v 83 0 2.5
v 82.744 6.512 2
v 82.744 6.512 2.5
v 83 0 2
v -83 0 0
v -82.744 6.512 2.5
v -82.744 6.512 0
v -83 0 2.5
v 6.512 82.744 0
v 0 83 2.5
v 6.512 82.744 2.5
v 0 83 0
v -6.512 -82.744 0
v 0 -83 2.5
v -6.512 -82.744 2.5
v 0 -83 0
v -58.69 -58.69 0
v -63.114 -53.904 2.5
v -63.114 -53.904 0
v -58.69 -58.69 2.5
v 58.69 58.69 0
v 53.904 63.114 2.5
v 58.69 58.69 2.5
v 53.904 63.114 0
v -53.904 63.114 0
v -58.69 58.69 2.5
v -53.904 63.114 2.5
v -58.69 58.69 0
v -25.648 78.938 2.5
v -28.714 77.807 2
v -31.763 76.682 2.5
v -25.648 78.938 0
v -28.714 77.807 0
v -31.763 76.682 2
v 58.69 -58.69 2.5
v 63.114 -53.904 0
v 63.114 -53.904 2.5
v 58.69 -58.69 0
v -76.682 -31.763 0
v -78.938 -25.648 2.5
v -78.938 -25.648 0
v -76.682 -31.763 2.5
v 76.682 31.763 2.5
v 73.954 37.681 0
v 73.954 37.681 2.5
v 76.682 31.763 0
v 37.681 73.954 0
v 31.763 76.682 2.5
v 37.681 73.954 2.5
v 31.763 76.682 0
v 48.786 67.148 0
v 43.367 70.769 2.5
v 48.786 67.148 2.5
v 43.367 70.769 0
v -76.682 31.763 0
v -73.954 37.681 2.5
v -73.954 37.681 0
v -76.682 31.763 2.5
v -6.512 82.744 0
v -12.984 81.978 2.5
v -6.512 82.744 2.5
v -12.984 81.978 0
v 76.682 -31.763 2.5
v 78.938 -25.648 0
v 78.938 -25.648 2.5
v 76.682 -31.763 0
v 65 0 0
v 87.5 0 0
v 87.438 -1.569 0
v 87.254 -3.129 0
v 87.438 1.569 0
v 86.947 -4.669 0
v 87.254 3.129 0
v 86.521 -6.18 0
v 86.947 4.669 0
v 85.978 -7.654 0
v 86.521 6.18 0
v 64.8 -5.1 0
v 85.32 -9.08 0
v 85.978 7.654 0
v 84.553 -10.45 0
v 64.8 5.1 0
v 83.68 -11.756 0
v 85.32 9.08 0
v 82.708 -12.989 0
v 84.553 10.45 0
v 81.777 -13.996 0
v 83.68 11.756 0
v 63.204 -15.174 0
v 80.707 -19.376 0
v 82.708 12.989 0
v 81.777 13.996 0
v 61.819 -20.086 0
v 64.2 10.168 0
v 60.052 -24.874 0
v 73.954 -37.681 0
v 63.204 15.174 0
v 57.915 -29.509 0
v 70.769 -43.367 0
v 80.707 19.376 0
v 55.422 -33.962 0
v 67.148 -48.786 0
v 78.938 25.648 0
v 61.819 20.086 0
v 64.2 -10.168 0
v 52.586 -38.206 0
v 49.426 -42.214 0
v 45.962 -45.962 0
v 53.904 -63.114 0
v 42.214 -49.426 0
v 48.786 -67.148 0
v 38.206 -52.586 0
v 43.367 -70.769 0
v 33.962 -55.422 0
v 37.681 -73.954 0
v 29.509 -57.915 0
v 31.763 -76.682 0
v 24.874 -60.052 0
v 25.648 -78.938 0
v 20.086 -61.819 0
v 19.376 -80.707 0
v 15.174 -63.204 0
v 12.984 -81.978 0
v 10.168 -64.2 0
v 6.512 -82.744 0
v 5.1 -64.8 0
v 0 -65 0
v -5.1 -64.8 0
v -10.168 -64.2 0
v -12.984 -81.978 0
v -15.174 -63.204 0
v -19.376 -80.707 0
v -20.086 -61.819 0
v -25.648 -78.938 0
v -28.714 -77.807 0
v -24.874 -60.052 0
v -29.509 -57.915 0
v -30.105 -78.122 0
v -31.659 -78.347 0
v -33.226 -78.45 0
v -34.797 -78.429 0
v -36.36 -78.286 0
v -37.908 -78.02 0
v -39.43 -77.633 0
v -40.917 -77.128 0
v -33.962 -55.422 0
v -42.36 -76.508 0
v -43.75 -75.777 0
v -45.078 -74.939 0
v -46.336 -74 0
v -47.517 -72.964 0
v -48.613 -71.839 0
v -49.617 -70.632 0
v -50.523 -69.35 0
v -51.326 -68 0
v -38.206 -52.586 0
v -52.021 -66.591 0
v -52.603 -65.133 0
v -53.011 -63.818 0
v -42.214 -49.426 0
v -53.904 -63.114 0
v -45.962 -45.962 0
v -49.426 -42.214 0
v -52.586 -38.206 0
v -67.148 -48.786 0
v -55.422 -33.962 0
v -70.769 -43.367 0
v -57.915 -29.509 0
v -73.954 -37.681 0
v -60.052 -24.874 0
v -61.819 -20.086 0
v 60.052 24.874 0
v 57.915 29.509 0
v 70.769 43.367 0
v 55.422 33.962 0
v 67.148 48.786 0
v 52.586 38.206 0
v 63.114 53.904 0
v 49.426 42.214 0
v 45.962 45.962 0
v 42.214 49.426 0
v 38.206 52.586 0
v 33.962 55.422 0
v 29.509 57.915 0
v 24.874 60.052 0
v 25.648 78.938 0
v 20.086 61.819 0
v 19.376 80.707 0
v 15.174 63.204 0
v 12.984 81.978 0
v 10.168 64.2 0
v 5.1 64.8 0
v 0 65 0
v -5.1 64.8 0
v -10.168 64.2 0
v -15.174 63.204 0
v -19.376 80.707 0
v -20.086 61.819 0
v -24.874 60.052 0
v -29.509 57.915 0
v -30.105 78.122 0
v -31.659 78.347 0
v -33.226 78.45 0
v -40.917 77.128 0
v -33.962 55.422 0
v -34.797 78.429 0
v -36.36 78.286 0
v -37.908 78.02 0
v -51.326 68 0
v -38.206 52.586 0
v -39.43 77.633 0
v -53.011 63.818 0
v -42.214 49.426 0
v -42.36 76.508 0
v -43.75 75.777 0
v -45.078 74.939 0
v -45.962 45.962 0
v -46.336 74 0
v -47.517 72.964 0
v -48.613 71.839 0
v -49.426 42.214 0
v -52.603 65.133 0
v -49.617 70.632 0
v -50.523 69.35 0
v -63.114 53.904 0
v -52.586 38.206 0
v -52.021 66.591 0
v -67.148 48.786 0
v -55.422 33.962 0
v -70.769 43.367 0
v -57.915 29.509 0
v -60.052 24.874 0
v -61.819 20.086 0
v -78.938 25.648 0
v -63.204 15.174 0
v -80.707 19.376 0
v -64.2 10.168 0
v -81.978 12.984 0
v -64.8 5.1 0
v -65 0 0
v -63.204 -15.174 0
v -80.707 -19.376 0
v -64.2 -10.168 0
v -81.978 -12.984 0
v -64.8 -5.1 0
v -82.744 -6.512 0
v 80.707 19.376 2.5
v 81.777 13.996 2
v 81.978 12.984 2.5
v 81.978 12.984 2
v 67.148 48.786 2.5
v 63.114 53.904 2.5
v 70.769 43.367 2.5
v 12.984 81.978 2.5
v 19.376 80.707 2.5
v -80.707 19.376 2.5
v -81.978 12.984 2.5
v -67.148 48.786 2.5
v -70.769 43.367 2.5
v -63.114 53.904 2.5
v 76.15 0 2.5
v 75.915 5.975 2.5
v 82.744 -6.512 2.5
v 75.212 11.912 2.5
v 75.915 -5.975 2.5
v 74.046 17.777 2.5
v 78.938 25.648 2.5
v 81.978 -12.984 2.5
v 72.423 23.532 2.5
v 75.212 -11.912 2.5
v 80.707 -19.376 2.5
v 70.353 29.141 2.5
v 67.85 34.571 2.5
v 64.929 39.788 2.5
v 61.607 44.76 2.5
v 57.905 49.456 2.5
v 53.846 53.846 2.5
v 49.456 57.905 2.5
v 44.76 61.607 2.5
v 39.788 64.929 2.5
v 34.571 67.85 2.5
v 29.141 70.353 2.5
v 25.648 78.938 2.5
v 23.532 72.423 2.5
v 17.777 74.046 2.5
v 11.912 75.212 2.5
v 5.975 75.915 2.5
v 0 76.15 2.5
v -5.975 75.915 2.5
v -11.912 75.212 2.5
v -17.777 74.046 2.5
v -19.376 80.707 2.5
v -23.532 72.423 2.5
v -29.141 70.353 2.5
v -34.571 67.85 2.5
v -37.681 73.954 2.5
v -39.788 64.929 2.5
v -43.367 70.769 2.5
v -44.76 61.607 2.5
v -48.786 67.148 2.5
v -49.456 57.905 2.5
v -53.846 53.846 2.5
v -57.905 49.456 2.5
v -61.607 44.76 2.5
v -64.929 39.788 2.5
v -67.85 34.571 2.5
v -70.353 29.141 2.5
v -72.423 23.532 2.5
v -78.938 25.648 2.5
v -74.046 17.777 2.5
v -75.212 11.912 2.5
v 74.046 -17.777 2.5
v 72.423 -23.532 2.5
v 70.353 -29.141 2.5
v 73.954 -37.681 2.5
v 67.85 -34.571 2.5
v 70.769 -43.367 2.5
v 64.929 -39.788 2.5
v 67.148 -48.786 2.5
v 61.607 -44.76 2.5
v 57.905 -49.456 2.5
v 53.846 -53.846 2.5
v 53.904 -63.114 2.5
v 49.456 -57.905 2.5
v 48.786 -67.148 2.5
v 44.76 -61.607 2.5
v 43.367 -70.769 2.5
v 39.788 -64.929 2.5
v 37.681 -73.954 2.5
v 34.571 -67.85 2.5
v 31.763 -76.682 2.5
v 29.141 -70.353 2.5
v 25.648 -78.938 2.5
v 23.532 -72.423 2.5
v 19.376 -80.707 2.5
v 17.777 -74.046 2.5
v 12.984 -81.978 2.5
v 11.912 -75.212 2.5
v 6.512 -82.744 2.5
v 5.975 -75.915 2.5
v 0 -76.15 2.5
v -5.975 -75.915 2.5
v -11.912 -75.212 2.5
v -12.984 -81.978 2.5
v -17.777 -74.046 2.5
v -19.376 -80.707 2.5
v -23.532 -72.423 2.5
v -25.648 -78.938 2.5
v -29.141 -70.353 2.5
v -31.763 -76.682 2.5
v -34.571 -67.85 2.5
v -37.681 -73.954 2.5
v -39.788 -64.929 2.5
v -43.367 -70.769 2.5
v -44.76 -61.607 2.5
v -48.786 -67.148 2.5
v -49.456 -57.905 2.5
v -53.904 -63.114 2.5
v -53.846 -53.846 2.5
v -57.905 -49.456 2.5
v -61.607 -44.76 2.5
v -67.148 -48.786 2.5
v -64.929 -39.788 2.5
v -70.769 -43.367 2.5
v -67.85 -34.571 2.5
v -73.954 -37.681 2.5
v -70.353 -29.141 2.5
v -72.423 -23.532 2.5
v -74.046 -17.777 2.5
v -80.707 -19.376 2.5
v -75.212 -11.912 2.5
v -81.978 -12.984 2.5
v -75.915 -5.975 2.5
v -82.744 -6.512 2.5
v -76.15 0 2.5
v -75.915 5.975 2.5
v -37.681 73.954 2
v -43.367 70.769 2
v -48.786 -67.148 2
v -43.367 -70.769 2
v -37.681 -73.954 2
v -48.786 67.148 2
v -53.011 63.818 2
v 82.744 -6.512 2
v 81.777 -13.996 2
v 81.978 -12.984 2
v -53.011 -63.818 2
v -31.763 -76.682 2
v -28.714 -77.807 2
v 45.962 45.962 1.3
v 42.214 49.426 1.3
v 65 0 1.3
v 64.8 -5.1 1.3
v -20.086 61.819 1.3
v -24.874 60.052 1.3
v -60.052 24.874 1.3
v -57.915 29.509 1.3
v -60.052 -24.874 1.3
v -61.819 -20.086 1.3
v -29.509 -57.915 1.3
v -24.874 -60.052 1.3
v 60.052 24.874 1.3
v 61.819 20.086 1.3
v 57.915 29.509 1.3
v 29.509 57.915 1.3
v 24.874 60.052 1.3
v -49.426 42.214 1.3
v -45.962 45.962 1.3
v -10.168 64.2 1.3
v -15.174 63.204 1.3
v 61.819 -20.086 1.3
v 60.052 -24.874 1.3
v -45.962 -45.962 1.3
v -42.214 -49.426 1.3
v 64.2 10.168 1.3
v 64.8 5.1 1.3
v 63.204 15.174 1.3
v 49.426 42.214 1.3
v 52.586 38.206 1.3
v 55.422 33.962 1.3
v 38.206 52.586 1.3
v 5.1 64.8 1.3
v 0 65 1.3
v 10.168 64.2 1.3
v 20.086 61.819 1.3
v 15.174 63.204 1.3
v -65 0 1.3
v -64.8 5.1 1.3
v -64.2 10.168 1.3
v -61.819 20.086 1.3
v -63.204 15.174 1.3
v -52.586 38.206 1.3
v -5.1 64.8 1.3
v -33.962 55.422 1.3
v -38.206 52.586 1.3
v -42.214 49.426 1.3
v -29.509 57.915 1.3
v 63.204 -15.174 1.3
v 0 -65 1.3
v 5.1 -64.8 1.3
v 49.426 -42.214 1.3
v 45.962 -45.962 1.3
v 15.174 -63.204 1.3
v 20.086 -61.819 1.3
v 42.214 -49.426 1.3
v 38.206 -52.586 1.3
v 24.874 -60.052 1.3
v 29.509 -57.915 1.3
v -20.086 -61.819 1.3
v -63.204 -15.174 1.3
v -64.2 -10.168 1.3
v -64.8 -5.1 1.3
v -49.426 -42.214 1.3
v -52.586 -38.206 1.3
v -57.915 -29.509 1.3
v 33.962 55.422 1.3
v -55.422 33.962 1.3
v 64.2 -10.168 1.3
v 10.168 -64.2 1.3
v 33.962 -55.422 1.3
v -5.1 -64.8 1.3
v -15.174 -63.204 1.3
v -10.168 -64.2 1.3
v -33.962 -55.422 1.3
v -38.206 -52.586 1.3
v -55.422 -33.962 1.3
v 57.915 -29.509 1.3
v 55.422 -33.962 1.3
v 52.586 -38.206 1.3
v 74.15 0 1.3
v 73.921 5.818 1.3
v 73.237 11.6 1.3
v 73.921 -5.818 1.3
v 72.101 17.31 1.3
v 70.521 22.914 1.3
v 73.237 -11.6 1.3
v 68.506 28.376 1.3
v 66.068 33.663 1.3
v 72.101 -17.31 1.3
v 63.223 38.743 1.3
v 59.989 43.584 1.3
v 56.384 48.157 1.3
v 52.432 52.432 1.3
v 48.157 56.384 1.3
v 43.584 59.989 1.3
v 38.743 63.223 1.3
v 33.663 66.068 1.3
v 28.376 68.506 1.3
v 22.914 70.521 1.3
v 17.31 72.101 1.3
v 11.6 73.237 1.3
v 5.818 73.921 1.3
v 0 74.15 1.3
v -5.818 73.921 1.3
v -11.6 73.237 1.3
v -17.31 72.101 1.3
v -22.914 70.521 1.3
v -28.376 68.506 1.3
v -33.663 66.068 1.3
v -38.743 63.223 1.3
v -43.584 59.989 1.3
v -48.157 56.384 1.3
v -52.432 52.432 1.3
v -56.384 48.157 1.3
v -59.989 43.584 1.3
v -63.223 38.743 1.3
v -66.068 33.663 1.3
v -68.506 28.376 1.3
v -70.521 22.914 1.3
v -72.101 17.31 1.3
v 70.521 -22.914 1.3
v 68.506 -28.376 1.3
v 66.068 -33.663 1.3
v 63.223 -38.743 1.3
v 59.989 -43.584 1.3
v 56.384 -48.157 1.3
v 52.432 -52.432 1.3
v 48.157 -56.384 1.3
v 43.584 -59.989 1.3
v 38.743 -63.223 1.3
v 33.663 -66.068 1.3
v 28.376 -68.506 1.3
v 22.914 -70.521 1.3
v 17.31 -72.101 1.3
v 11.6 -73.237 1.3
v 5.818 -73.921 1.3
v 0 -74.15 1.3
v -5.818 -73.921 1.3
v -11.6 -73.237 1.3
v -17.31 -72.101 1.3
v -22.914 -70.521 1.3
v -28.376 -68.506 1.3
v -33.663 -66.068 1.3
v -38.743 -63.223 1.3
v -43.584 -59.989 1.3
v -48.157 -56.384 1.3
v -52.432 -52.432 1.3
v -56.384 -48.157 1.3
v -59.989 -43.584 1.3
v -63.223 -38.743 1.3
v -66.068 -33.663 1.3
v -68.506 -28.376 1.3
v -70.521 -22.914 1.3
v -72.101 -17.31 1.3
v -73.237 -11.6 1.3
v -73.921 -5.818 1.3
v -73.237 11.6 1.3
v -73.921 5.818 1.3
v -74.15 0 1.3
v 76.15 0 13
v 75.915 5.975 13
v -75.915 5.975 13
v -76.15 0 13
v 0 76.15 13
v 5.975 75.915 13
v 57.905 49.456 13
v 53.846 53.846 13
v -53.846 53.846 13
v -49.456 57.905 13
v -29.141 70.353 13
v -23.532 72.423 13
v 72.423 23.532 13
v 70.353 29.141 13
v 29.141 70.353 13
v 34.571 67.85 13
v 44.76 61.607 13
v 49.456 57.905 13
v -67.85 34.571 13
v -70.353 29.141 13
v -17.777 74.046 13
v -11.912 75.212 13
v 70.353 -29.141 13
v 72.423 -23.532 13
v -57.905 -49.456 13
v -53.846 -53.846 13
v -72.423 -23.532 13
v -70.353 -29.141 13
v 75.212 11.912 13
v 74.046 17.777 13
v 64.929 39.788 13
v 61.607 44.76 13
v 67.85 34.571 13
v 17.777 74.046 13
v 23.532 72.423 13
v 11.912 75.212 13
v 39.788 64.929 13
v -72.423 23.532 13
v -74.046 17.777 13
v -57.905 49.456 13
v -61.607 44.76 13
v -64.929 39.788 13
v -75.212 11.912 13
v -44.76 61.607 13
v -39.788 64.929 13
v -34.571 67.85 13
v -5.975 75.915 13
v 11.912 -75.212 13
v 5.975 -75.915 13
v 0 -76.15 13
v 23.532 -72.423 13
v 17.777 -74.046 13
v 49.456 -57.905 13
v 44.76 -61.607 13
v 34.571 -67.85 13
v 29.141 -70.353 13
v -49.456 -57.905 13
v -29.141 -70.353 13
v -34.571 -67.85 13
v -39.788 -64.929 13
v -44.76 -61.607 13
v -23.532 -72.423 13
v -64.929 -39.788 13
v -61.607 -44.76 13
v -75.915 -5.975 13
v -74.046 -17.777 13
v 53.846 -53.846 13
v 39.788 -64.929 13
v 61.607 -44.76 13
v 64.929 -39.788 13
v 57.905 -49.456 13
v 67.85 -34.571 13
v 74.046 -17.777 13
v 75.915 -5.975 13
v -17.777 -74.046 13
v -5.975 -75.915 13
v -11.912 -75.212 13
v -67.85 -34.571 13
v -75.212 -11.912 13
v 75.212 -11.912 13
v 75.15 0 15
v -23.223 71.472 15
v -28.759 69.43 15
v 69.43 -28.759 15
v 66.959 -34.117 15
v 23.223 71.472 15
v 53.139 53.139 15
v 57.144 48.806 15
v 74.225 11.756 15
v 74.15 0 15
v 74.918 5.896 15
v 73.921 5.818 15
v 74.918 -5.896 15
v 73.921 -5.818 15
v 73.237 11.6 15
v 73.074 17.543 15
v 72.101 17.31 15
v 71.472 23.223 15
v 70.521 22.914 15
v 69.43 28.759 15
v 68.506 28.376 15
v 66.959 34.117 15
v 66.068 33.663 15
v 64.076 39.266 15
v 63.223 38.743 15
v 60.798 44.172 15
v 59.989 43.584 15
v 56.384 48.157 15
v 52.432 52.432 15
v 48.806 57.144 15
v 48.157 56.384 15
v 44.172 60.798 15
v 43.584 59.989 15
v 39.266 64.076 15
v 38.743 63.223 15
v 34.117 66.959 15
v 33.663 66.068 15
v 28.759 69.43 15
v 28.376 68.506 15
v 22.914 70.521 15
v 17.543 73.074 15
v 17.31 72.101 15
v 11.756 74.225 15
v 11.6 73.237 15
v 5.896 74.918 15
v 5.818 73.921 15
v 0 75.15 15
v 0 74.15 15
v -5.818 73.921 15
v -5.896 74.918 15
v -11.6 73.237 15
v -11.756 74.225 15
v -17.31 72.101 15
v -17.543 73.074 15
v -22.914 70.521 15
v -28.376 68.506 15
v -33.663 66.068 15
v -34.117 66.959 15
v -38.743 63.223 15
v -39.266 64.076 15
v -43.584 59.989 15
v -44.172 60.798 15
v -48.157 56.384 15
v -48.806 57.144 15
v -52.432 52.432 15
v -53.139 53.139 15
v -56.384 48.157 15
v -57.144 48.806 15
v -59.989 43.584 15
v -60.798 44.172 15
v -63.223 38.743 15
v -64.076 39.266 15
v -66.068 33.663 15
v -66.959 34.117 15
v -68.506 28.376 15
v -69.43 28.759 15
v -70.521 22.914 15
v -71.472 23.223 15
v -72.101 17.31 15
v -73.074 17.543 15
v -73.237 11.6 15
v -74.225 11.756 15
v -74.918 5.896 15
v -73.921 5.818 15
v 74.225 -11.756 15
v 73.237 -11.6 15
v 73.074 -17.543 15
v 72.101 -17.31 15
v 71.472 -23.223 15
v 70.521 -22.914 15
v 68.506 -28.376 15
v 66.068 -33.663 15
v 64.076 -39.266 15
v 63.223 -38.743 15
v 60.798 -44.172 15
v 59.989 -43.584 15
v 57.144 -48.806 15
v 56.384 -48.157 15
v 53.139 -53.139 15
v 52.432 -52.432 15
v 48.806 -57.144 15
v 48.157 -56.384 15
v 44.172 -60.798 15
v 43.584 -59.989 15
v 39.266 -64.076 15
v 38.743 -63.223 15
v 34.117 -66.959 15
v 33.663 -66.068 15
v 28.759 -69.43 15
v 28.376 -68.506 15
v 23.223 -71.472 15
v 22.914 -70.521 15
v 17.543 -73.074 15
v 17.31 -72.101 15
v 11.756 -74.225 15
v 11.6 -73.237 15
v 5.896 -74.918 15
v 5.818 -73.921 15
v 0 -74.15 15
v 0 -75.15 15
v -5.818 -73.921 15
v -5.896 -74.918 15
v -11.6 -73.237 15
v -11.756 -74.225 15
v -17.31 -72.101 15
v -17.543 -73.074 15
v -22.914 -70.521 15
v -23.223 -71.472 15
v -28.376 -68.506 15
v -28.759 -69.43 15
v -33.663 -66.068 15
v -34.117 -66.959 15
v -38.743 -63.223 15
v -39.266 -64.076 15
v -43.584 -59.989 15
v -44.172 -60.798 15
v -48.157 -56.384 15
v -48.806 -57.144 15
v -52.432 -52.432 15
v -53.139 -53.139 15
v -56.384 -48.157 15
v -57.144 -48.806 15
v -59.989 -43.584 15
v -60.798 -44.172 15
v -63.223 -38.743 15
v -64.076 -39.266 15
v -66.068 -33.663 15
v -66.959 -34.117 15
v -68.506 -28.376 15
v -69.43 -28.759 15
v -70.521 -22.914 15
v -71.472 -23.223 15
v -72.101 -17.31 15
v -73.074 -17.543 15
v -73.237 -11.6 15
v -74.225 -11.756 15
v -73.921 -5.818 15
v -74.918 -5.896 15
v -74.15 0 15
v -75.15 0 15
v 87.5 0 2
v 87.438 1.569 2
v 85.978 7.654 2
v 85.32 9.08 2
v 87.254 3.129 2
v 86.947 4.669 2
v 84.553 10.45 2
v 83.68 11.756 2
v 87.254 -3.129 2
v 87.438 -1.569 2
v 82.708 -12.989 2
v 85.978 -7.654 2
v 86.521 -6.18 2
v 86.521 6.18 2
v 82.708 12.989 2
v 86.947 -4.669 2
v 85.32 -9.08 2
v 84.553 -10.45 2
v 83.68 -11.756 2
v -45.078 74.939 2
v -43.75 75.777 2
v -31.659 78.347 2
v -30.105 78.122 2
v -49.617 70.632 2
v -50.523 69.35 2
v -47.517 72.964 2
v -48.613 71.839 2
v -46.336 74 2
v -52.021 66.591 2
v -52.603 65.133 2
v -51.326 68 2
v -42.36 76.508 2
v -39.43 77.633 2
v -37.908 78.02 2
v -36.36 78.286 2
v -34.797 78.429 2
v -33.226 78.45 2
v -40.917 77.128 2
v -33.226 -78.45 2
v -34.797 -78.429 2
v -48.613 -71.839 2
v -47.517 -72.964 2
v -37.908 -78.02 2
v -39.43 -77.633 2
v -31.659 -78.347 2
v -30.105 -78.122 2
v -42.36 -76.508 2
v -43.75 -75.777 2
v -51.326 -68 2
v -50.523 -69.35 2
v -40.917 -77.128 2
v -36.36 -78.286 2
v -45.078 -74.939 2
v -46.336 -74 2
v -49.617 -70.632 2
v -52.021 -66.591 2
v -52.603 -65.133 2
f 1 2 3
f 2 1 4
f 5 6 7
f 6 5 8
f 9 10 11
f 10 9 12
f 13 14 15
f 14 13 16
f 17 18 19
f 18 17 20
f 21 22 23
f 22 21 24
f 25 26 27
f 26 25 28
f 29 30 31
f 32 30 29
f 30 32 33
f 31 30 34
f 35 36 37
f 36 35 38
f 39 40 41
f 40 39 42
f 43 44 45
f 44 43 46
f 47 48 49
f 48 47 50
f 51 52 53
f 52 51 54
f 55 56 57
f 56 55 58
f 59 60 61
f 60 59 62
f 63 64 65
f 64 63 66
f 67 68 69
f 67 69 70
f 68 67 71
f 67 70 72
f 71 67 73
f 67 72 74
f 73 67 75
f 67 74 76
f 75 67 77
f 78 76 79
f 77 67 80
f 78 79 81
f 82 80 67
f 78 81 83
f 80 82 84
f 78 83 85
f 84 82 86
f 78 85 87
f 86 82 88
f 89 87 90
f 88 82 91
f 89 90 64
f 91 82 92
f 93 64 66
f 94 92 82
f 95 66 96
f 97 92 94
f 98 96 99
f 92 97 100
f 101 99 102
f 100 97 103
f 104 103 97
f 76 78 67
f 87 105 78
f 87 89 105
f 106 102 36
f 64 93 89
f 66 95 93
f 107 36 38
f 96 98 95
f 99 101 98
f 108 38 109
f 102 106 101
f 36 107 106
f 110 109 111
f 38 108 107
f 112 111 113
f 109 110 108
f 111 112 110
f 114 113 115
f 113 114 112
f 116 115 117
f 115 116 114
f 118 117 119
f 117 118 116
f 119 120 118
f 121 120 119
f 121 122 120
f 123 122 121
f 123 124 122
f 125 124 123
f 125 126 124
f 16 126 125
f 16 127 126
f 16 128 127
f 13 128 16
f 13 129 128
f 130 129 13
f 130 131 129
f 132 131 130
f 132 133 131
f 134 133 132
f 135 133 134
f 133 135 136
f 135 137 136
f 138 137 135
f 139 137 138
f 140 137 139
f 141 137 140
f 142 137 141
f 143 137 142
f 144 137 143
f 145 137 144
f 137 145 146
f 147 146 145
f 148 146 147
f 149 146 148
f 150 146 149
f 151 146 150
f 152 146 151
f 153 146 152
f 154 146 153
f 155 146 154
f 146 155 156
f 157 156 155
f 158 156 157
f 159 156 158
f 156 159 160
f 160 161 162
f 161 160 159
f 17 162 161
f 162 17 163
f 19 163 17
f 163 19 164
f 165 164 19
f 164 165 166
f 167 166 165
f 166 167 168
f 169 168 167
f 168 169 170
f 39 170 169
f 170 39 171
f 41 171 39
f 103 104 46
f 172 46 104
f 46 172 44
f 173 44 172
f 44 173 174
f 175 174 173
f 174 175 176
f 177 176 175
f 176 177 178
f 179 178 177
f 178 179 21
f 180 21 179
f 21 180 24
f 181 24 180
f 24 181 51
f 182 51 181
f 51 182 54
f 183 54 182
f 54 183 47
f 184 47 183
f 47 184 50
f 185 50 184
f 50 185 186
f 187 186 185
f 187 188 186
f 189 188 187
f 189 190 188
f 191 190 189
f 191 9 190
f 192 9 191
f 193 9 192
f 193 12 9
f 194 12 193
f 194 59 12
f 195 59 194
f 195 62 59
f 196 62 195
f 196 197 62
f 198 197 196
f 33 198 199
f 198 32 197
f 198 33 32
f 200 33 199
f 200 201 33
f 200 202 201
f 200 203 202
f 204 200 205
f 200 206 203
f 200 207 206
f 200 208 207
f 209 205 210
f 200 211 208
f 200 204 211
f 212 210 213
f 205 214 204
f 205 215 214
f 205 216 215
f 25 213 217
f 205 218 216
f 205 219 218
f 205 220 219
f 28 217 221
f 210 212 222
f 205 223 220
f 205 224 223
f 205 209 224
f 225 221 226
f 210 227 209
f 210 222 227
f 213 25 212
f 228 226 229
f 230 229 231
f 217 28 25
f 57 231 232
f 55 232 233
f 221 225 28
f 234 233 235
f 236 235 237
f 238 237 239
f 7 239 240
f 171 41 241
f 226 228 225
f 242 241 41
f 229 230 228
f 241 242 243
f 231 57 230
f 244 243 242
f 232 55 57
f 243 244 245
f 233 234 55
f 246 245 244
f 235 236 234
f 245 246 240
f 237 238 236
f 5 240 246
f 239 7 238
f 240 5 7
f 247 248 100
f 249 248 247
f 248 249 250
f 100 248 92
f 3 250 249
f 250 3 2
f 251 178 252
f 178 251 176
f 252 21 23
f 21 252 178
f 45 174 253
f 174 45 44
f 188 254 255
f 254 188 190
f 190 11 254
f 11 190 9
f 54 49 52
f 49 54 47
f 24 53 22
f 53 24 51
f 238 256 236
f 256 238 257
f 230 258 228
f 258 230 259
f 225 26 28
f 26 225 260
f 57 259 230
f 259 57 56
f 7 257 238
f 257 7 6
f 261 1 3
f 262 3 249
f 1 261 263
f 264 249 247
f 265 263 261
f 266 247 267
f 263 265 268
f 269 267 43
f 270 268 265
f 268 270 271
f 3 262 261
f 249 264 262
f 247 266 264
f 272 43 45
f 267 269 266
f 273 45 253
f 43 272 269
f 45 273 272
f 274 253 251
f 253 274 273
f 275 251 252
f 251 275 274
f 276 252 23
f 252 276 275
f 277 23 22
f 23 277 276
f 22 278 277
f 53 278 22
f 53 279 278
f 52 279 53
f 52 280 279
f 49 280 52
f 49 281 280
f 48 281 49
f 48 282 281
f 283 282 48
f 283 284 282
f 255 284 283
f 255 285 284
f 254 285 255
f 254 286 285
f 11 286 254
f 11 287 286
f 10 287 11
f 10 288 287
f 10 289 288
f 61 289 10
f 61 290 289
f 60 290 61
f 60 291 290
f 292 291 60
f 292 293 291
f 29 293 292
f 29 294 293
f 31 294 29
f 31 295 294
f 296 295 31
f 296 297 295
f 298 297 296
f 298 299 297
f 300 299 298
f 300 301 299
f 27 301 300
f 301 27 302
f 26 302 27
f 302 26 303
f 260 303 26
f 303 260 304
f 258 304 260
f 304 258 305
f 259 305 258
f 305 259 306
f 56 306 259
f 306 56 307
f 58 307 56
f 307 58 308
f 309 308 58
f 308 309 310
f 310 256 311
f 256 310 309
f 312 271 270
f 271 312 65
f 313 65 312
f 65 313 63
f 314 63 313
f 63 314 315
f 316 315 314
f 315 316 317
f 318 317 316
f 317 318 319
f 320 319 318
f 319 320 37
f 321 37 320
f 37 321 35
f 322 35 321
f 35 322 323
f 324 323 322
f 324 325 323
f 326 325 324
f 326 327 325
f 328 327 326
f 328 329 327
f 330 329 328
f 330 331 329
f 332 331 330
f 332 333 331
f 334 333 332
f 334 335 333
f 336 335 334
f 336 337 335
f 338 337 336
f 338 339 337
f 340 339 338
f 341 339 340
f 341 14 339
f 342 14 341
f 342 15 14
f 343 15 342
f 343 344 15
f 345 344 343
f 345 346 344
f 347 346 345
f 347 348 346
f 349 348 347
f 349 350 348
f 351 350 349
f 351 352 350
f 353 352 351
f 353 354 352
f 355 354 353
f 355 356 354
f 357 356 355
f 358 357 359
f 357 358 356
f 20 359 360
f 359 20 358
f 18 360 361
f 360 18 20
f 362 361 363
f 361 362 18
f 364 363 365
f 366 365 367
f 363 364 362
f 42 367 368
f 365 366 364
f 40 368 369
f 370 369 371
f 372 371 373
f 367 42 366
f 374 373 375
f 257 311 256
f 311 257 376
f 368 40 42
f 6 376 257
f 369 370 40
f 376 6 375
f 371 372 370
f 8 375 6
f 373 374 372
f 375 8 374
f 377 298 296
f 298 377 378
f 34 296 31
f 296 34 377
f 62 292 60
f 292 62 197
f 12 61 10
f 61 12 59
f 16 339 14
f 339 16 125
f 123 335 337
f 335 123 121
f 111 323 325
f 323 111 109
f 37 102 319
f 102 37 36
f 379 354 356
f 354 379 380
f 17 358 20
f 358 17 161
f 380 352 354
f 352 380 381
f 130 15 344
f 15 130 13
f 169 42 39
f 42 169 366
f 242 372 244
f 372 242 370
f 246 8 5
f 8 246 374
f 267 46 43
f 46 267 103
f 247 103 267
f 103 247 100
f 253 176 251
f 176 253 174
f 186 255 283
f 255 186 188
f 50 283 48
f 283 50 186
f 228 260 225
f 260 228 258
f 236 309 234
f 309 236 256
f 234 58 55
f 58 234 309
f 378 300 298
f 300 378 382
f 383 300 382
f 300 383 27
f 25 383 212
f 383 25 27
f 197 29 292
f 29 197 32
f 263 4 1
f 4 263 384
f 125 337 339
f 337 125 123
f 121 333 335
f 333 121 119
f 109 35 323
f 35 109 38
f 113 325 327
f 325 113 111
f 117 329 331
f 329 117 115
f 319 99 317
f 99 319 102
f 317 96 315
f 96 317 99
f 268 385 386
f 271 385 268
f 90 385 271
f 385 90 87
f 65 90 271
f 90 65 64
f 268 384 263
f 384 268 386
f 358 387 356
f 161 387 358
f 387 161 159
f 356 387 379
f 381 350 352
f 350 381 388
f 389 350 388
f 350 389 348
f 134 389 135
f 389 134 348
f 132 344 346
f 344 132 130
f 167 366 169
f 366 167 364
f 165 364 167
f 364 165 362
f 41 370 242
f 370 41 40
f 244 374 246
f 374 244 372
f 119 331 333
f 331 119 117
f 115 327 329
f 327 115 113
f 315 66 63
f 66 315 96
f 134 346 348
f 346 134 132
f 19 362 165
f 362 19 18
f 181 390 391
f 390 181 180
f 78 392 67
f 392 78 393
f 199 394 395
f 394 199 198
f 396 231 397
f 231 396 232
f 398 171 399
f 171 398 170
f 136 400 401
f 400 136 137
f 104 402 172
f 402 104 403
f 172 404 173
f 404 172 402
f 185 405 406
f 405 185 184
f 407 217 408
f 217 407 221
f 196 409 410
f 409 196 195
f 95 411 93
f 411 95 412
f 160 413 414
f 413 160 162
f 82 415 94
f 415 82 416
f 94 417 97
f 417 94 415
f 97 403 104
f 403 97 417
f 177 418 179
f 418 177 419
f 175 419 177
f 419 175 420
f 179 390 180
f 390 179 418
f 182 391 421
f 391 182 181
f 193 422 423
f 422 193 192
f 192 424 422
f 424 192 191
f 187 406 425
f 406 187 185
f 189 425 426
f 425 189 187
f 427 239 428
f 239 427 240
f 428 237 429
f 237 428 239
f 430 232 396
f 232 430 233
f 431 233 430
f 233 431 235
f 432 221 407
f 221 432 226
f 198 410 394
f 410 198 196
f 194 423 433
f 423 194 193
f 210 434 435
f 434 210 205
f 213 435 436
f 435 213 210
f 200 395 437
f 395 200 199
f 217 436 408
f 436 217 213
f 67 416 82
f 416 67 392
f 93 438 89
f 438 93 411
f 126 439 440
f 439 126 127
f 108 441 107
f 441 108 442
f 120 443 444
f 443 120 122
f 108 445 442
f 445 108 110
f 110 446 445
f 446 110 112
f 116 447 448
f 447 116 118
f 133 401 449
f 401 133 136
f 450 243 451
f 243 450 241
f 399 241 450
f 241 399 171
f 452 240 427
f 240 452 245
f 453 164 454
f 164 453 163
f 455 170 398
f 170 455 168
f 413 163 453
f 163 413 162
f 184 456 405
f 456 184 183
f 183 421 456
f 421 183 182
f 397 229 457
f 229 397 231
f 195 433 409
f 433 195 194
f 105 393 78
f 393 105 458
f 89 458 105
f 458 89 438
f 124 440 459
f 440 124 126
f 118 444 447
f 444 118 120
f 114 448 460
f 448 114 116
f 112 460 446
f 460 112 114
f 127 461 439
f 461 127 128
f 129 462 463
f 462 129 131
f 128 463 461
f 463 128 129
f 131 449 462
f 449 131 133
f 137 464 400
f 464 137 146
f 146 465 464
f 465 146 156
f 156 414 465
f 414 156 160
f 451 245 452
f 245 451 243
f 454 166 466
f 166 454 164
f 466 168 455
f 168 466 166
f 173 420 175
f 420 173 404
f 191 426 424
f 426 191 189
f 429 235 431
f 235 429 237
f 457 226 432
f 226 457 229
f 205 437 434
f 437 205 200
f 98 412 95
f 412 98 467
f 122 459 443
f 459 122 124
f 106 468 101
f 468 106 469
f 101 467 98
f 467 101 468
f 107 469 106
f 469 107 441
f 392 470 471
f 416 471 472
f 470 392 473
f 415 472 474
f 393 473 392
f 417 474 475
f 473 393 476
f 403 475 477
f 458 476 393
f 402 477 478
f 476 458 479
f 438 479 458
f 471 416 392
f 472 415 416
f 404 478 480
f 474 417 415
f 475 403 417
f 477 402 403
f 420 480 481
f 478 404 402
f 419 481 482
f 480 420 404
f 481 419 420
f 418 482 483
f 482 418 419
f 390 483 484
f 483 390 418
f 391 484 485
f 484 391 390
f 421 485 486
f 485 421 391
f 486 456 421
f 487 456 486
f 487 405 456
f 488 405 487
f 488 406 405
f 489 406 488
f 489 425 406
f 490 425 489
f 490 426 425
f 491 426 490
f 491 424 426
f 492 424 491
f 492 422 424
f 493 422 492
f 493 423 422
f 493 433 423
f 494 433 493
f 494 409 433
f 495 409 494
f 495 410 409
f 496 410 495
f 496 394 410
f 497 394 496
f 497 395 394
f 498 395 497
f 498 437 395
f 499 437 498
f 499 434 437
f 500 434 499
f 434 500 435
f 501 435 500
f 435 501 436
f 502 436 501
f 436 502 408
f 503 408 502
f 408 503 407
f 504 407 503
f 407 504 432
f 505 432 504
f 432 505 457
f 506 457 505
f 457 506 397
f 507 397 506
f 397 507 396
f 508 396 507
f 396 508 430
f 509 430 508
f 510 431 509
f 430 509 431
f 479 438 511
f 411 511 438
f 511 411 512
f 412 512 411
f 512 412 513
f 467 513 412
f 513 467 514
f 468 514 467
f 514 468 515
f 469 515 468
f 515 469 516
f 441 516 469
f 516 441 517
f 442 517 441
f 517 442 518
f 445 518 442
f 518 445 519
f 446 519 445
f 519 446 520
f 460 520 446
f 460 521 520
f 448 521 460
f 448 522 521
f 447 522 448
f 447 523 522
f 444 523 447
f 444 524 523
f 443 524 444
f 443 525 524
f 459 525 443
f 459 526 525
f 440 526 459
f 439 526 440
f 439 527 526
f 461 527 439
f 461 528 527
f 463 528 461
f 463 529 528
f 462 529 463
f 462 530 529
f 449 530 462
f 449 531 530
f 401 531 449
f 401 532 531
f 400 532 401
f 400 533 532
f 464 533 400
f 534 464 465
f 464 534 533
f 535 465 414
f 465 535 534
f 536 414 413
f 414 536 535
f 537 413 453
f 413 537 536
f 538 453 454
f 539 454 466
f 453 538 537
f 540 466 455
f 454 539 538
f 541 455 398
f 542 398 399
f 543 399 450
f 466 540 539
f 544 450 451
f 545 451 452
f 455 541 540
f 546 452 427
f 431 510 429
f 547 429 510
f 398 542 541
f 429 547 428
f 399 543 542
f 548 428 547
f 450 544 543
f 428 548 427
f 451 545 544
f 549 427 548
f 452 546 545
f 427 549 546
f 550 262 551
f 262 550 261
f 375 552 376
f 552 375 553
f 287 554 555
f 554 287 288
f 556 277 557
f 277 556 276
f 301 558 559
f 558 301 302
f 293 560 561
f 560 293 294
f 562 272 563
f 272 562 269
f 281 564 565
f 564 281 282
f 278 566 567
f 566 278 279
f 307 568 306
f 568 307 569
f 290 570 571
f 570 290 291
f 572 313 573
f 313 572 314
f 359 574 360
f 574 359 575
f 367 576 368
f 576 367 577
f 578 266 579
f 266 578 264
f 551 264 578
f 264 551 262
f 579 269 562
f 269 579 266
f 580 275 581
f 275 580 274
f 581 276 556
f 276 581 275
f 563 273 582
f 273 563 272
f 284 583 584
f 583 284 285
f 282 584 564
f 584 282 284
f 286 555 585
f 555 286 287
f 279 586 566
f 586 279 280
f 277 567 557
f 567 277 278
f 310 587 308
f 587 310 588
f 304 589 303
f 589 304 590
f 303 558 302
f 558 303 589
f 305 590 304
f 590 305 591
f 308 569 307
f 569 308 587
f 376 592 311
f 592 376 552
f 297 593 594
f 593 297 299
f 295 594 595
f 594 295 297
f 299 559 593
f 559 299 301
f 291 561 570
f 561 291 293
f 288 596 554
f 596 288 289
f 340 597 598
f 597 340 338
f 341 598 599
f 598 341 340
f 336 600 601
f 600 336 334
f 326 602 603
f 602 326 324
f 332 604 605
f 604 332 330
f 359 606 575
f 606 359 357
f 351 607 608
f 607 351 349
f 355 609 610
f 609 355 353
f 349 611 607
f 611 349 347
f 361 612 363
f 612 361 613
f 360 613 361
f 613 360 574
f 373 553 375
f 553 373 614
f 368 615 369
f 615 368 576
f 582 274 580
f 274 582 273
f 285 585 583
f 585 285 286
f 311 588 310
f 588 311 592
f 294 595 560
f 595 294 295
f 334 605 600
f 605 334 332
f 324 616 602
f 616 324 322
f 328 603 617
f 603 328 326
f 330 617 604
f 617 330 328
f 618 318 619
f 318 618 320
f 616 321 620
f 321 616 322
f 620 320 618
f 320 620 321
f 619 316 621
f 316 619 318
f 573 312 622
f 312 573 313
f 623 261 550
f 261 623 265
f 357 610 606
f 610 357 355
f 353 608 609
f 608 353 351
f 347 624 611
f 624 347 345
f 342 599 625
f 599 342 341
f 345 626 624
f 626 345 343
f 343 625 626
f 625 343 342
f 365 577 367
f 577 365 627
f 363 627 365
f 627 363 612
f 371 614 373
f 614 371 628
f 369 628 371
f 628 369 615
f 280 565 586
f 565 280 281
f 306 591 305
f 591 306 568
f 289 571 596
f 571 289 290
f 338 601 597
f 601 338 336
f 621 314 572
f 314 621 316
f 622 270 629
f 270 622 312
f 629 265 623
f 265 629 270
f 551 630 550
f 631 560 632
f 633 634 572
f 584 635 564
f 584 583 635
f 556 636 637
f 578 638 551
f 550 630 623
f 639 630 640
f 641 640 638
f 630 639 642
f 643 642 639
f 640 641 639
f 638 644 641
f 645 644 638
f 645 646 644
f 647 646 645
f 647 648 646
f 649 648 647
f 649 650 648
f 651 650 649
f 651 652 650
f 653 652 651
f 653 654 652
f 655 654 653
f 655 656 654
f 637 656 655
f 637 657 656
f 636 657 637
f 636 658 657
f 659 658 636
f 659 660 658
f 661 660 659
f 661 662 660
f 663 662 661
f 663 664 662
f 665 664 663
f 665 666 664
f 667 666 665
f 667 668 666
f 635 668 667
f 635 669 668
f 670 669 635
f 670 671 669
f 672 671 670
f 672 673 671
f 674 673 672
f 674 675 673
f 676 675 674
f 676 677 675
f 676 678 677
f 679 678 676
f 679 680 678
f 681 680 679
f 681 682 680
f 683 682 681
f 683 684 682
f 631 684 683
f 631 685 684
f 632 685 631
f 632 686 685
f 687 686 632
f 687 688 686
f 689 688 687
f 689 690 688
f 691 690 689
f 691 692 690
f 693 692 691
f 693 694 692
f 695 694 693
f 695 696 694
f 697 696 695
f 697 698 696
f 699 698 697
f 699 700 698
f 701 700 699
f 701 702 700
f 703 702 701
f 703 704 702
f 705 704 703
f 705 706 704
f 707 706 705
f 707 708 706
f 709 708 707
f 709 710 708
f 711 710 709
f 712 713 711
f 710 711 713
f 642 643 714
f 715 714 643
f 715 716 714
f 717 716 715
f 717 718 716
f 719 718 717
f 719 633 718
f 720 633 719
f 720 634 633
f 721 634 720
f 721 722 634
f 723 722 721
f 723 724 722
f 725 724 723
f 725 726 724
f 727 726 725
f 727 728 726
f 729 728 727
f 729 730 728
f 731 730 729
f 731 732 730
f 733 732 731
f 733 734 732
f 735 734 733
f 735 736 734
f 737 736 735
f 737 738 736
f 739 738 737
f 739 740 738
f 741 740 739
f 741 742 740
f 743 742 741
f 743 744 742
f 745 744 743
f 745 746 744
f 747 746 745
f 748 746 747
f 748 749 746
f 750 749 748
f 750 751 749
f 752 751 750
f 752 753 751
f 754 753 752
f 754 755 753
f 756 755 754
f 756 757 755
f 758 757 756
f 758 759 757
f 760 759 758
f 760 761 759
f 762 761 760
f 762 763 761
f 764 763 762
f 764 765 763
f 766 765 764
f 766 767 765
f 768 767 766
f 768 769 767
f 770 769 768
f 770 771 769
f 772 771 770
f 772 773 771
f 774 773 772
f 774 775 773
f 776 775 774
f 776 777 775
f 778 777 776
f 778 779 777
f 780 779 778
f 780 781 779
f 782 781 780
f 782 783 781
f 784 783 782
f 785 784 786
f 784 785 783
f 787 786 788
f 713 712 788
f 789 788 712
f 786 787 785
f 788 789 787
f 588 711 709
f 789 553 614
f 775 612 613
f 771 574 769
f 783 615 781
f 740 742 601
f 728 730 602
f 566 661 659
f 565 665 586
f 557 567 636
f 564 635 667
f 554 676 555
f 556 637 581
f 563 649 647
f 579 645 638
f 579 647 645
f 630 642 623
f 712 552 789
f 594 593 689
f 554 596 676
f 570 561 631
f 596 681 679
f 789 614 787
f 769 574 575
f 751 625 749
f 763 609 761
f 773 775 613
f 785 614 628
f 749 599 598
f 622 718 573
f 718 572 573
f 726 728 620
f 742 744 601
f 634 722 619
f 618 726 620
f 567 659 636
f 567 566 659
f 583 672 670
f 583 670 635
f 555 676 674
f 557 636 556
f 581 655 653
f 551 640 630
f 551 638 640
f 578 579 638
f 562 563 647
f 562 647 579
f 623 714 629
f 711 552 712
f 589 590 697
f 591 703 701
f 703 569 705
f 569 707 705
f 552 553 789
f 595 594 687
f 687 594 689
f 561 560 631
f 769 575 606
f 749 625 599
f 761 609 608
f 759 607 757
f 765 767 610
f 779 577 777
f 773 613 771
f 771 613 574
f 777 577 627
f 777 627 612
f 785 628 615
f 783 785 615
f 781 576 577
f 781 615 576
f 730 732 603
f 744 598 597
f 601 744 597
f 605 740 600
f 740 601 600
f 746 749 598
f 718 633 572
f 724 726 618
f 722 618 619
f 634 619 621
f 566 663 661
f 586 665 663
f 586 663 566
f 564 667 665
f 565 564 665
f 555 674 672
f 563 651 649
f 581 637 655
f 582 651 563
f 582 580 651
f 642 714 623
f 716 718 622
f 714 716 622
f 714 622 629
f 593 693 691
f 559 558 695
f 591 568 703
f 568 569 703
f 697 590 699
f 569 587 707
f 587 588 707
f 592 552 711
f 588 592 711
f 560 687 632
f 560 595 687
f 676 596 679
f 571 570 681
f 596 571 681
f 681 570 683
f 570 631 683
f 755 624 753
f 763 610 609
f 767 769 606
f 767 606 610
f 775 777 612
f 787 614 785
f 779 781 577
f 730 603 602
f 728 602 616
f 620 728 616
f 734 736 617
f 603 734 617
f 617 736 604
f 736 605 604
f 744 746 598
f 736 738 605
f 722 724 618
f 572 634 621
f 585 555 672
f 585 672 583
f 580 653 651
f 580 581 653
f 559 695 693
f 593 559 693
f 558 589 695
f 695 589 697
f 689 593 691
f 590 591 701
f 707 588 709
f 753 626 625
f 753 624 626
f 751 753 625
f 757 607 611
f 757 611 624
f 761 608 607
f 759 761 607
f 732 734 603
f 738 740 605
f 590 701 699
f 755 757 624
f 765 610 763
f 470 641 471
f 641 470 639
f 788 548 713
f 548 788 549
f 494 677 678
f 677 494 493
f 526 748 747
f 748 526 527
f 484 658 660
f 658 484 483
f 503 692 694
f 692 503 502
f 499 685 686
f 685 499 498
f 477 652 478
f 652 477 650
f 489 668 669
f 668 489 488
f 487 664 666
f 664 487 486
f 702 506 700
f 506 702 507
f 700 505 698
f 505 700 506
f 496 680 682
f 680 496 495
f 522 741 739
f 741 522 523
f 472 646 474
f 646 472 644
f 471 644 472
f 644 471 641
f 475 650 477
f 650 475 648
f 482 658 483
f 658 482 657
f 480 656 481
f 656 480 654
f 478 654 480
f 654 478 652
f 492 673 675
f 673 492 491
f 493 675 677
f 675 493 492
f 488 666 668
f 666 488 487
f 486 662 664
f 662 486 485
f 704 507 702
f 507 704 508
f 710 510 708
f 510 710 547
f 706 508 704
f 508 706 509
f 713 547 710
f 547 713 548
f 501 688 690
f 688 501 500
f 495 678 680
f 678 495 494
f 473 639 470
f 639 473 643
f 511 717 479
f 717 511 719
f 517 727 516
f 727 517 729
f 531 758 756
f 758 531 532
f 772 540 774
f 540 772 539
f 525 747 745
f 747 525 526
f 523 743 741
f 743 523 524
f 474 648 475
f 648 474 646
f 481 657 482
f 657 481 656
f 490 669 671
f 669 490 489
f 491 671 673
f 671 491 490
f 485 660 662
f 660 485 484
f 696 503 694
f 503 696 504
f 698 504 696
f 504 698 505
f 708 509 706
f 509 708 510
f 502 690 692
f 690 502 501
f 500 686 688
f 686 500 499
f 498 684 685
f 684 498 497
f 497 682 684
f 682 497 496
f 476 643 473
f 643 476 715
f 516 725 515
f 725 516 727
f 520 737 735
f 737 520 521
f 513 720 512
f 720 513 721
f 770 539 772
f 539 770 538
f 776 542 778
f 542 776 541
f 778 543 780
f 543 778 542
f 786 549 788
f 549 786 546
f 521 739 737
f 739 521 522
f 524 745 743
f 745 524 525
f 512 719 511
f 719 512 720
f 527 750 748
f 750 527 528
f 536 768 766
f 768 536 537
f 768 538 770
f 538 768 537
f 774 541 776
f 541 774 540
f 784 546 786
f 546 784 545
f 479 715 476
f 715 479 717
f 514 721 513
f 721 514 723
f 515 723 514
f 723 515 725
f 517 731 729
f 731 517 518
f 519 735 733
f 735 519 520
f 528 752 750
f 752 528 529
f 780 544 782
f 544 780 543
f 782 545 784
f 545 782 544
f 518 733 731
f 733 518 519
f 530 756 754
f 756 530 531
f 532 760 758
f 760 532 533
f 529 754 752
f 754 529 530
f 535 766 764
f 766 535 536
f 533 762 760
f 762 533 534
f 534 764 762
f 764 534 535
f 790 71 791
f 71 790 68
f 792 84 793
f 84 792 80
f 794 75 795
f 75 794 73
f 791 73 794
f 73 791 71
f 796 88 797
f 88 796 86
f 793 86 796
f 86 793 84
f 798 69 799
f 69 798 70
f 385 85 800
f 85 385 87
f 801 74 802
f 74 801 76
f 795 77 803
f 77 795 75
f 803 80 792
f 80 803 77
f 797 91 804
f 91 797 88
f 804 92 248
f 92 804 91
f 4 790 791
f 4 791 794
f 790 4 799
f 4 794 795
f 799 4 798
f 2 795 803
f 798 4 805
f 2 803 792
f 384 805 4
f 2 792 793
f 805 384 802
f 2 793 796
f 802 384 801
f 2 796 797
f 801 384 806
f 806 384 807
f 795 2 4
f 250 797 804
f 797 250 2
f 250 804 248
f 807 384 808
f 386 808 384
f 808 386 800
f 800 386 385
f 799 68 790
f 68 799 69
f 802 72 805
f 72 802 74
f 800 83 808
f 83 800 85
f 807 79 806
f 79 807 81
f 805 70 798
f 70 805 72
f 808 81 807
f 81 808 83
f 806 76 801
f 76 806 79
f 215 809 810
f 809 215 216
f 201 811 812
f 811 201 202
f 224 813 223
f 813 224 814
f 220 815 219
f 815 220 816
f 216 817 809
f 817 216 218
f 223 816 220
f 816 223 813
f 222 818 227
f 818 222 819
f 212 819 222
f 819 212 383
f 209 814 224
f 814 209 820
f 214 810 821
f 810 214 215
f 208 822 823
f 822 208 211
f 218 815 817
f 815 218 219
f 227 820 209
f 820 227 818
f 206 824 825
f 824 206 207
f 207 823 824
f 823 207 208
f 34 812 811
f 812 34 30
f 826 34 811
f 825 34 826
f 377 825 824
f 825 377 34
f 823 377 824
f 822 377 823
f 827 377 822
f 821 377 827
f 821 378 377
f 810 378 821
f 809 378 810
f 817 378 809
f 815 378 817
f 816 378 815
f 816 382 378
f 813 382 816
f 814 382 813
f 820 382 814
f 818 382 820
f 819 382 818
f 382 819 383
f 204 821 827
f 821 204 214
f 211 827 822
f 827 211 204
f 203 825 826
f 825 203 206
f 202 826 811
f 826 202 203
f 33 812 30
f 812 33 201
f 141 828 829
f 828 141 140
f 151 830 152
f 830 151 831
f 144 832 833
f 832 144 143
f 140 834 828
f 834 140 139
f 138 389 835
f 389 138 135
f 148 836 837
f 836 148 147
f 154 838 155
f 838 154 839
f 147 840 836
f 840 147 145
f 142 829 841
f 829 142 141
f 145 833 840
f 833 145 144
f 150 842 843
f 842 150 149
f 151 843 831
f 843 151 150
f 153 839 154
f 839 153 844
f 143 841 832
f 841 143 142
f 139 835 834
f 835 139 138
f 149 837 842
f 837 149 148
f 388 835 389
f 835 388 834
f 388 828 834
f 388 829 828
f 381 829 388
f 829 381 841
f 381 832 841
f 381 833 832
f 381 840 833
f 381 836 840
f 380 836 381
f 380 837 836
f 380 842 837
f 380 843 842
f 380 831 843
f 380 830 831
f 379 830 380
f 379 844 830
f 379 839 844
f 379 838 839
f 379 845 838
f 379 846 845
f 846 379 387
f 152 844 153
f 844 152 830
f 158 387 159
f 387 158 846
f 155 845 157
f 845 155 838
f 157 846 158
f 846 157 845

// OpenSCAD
$fn = 80; 

outer_d = 166;
inner_d = 130;
filter_d = 150;

ring_od = 152.3;
ring_id = ring_od-4;


module adapter(){
    difference(){
        cylinder(2.5, outer_d/2, outer_d/2);
        translate([0,0,-0.1]) cylinder(2.2,  inner_d/2, inner_d/2);
        translate([0,0,1.3]) cylinder(2,  filter_d/2, filter_d/2);
    }
    
    difference(){
        union(){
            cylinder(13, ring_od/2, ring_od/2);
            translate([0,0,13]) cylinder(2, ring_od/2, ring_od/2-1);
        }
        translate([0,0,-0.1]) cylinder(15+0.2,  ring_id/2, ring_id/2);
    }
    
    difference(){union(){
        rotate (0) translate([135/2, 0, 0]) cylinder(2, 20, 20);
        rotate (30+90) translate([135/2, 0, 0]) cylinder(2, 20, 20);
        rotate (-30-90) translate([135/2, 0, 0]) cylinder(2, 20, 20);
        }
    
        translate([0,0,-0.1]) cylinder(2+0.2,  filter_d/2, filter_d/2);
    }
    
}





adapter();
